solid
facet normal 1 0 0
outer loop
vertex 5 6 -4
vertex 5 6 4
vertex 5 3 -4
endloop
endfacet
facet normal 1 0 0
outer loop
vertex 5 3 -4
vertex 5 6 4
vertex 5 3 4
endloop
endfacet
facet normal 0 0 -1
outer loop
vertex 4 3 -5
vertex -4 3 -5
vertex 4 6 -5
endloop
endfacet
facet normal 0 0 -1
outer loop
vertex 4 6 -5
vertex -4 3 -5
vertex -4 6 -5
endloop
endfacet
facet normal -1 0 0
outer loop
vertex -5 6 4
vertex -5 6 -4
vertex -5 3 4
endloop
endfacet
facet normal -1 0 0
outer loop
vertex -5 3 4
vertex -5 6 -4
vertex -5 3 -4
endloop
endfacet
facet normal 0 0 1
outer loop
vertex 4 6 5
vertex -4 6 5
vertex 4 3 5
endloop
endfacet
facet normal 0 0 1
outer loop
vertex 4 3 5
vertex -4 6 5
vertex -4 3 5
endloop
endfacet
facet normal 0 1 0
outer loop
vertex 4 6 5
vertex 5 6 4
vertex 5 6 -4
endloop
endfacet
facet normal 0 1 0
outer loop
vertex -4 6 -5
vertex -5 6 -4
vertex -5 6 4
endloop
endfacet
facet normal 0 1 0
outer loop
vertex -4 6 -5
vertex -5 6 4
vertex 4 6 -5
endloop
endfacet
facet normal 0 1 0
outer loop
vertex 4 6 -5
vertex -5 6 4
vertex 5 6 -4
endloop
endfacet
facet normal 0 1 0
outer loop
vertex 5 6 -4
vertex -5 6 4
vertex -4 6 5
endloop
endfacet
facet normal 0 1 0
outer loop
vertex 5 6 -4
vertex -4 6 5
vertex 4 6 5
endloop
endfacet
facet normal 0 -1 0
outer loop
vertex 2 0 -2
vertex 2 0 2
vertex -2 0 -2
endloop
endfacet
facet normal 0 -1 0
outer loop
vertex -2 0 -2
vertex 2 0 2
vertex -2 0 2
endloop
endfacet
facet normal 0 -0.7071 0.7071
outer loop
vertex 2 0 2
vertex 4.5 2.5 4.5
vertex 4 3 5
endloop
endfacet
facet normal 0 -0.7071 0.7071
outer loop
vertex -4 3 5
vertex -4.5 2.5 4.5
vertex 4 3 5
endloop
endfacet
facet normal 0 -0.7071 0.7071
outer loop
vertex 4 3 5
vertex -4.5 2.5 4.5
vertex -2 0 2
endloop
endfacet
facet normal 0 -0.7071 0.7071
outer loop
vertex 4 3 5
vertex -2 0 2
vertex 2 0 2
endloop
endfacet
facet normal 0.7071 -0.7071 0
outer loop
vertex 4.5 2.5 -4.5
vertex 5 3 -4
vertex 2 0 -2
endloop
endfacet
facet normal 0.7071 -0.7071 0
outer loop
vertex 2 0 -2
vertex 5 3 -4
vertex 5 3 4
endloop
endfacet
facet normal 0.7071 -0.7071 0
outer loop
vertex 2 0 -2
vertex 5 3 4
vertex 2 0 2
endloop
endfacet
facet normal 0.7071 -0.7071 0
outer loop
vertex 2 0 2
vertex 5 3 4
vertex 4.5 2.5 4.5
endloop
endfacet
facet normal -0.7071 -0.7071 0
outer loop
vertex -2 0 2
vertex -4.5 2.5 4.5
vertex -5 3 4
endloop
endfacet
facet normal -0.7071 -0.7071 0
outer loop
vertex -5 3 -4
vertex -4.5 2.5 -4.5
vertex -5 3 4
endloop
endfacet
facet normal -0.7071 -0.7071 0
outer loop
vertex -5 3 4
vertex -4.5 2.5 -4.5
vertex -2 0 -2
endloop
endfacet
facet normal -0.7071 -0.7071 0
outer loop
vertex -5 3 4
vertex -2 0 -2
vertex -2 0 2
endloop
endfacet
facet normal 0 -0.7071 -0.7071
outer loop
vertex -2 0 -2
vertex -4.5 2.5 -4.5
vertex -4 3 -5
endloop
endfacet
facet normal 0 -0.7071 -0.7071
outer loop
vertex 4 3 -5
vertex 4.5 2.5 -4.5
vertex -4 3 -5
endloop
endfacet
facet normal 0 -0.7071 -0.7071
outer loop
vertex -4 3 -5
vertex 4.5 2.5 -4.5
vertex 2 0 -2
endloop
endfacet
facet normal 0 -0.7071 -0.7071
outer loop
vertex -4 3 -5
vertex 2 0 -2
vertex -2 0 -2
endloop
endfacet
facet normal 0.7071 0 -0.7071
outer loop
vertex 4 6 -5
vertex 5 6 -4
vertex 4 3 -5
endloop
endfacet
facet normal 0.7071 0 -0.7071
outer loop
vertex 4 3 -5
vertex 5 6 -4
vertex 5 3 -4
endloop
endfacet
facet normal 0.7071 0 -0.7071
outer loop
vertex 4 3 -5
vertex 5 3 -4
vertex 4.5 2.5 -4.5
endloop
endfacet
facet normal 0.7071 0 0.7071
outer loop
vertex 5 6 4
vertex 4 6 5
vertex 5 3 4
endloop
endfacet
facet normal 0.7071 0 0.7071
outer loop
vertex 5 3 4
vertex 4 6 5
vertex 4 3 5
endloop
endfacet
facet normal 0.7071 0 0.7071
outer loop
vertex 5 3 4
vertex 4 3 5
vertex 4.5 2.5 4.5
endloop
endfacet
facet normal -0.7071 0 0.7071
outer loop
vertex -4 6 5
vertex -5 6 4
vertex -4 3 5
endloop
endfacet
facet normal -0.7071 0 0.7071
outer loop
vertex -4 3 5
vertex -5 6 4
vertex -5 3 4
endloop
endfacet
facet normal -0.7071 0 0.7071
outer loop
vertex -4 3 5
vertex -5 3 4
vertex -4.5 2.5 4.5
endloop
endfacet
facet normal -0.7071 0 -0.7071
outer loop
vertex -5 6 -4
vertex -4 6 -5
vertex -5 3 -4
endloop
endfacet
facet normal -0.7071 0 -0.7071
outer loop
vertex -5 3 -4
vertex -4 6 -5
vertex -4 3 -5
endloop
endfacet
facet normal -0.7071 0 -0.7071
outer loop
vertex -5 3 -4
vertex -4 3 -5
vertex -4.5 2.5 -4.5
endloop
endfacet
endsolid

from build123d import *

# Parameters (mm, degrees)
ESQUISSE1_W        = 10
ESQUISSE1_H        = 10
BOSS_EXTRU_1_DEPTH = 6
CHANFREIN1_SIZE    = 3
CHANFREIN2_SIZE    = 1


with BuildPart() as part:
    # Esquisse1 → Boss.-Extru.1 (new body)
    with BuildSketch(Plane(origin=(0, 0, 0), x_dir=(1, 0, 0), z_dir=(0, 1, 0))):
        Rectangle(ESQUISSE1_W, ESQUISSE1_H)
    extrude(amount=BOSS_EXTRU_1_DEPTH)

    # Chanfrein1
    chanfrein1_edges = [part.edges().sort_by_distance(p)[0] for p in [
        (0, 0, 5),
        (-5, 0, 0),
        (0, 0, -5),
        (5, 0, 0),
    ]]
    chamfer(chanfrein1_edges, length=CHANFREIN1_SIZE)

    # Chanfrein2
    chanfrein2_edges = [part.edges().sort_by_distance(p)[0] for p in [
        (5, 4.5, 5),
        (-5, 4.5, 5),
        (-5, 4.5, -5),
        (5, 4.5, -5),
    ]]
    chamfer(chanfrein2_edges, length=CHANFREIN2_SIZE)


solid = part.part
